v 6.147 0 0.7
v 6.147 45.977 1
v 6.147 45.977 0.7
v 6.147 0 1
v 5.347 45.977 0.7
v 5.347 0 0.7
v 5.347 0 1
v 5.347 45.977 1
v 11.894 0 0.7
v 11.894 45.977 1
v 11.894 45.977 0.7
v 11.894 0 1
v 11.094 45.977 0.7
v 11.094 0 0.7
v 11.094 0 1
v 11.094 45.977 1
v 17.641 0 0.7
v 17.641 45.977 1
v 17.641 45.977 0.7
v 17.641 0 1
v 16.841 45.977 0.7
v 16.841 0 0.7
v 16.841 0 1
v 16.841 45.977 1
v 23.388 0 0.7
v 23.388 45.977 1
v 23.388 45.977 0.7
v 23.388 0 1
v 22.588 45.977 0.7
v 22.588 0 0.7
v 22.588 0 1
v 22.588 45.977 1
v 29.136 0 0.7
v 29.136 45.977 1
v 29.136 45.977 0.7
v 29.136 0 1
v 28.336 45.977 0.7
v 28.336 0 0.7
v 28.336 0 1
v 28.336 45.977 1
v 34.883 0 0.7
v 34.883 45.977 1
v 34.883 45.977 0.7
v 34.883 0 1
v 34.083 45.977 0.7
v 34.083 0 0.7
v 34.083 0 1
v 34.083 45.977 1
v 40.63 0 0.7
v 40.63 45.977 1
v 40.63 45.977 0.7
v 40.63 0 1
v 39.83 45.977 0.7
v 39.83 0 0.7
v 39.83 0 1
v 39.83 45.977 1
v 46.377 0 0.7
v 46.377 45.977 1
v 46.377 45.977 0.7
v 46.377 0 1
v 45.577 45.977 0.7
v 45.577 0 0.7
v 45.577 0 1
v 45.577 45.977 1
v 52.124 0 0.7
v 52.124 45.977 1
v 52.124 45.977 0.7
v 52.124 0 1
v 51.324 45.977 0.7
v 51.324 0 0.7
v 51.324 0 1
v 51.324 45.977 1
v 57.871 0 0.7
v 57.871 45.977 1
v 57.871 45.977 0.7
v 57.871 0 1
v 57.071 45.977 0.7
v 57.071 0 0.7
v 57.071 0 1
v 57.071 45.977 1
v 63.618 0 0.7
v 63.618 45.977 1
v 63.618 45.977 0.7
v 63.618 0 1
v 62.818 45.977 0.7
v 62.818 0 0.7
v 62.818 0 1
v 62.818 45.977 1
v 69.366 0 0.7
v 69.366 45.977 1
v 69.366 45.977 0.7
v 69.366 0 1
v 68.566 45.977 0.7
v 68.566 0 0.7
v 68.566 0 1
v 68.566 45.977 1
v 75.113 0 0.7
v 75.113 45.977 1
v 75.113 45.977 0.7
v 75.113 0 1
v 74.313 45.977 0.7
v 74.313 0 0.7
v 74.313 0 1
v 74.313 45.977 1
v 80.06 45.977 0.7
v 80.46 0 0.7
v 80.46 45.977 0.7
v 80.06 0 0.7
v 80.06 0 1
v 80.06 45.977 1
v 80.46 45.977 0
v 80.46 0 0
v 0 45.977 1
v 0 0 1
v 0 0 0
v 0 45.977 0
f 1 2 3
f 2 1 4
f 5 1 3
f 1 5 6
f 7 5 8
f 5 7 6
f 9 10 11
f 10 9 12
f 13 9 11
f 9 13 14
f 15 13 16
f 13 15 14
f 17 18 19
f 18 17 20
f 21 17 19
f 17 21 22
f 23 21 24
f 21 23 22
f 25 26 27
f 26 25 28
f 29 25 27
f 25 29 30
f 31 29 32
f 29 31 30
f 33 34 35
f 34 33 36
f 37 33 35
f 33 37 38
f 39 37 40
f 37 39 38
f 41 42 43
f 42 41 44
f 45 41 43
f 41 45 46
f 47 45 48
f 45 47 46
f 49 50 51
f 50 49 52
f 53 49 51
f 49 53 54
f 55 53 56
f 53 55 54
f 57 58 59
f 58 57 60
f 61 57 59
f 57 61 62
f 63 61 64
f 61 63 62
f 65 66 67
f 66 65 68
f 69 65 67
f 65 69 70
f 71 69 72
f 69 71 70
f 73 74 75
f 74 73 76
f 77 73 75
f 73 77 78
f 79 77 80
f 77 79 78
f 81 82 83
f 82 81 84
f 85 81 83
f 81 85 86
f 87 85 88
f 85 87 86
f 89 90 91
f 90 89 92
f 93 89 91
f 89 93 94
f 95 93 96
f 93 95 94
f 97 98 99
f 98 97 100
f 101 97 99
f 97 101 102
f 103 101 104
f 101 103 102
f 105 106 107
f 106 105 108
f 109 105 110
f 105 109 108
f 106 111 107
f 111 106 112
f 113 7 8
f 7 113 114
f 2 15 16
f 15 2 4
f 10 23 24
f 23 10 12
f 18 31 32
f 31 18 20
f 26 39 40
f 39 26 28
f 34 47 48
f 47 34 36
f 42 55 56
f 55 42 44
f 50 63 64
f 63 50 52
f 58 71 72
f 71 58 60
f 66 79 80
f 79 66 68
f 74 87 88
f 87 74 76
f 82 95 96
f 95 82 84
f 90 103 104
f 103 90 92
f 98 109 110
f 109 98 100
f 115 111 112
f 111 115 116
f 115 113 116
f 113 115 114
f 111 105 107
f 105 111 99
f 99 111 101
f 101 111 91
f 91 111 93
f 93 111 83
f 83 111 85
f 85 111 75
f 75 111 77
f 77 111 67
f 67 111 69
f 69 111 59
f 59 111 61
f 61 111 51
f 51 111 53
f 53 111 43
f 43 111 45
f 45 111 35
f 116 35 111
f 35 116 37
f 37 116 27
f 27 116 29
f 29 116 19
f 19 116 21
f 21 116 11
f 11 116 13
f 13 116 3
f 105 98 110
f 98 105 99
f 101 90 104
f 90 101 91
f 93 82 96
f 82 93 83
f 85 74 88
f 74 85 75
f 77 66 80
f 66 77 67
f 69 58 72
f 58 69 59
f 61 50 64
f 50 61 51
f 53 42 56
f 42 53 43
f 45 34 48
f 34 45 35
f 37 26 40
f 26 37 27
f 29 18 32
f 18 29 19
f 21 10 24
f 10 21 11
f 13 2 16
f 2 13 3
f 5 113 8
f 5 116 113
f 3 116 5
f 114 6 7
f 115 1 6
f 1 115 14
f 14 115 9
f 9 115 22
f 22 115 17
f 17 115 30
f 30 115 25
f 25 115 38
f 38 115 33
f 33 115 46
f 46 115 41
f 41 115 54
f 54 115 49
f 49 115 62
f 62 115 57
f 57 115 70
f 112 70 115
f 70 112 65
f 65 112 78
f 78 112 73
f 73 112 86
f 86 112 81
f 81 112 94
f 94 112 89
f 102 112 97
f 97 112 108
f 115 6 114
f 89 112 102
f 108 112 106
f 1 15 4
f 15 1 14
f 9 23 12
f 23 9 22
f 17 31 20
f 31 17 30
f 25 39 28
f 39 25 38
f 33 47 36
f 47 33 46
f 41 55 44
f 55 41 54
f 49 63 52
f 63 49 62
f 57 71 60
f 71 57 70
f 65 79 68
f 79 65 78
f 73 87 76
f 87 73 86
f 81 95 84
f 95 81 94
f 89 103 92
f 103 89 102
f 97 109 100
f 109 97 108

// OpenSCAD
/*
 * PROMPT: Back wall panel of the Cities-Skylines-style police station garage annex
 * in H0 scale (1:87). Plain facade with vertical siding grooves on exterior face.
 * Flat 1 mm panel, exterior face up.
 */

$fn = 32;
S = 1/87;
panel_t = 1.0;

annex_w_real  = 7000;
annex_h_real  = 4000;
siding_p_real = 500;
siding_w      = 0.8;
siding_d      = 0.3;

annex_w  = annex_w_real * S;
annex_h  = annex_h_real * S;
siding_p = siding_p_real * S;

module garage_wall_back() {
    difference() {
        cube([annex_w, annex_h, panel_t]);

        // vertical siding grooves on exterior face
        for (i = [1 : floor(annex_w / siding_p)]) {
            gx = i * siding_p - siding_w/2;
            translate([gx, -1, panel_t - siding_d])
                cube([siding_w, annex_h+2, siding_d+1]);
        }
    }
}

garage_wall_back();
